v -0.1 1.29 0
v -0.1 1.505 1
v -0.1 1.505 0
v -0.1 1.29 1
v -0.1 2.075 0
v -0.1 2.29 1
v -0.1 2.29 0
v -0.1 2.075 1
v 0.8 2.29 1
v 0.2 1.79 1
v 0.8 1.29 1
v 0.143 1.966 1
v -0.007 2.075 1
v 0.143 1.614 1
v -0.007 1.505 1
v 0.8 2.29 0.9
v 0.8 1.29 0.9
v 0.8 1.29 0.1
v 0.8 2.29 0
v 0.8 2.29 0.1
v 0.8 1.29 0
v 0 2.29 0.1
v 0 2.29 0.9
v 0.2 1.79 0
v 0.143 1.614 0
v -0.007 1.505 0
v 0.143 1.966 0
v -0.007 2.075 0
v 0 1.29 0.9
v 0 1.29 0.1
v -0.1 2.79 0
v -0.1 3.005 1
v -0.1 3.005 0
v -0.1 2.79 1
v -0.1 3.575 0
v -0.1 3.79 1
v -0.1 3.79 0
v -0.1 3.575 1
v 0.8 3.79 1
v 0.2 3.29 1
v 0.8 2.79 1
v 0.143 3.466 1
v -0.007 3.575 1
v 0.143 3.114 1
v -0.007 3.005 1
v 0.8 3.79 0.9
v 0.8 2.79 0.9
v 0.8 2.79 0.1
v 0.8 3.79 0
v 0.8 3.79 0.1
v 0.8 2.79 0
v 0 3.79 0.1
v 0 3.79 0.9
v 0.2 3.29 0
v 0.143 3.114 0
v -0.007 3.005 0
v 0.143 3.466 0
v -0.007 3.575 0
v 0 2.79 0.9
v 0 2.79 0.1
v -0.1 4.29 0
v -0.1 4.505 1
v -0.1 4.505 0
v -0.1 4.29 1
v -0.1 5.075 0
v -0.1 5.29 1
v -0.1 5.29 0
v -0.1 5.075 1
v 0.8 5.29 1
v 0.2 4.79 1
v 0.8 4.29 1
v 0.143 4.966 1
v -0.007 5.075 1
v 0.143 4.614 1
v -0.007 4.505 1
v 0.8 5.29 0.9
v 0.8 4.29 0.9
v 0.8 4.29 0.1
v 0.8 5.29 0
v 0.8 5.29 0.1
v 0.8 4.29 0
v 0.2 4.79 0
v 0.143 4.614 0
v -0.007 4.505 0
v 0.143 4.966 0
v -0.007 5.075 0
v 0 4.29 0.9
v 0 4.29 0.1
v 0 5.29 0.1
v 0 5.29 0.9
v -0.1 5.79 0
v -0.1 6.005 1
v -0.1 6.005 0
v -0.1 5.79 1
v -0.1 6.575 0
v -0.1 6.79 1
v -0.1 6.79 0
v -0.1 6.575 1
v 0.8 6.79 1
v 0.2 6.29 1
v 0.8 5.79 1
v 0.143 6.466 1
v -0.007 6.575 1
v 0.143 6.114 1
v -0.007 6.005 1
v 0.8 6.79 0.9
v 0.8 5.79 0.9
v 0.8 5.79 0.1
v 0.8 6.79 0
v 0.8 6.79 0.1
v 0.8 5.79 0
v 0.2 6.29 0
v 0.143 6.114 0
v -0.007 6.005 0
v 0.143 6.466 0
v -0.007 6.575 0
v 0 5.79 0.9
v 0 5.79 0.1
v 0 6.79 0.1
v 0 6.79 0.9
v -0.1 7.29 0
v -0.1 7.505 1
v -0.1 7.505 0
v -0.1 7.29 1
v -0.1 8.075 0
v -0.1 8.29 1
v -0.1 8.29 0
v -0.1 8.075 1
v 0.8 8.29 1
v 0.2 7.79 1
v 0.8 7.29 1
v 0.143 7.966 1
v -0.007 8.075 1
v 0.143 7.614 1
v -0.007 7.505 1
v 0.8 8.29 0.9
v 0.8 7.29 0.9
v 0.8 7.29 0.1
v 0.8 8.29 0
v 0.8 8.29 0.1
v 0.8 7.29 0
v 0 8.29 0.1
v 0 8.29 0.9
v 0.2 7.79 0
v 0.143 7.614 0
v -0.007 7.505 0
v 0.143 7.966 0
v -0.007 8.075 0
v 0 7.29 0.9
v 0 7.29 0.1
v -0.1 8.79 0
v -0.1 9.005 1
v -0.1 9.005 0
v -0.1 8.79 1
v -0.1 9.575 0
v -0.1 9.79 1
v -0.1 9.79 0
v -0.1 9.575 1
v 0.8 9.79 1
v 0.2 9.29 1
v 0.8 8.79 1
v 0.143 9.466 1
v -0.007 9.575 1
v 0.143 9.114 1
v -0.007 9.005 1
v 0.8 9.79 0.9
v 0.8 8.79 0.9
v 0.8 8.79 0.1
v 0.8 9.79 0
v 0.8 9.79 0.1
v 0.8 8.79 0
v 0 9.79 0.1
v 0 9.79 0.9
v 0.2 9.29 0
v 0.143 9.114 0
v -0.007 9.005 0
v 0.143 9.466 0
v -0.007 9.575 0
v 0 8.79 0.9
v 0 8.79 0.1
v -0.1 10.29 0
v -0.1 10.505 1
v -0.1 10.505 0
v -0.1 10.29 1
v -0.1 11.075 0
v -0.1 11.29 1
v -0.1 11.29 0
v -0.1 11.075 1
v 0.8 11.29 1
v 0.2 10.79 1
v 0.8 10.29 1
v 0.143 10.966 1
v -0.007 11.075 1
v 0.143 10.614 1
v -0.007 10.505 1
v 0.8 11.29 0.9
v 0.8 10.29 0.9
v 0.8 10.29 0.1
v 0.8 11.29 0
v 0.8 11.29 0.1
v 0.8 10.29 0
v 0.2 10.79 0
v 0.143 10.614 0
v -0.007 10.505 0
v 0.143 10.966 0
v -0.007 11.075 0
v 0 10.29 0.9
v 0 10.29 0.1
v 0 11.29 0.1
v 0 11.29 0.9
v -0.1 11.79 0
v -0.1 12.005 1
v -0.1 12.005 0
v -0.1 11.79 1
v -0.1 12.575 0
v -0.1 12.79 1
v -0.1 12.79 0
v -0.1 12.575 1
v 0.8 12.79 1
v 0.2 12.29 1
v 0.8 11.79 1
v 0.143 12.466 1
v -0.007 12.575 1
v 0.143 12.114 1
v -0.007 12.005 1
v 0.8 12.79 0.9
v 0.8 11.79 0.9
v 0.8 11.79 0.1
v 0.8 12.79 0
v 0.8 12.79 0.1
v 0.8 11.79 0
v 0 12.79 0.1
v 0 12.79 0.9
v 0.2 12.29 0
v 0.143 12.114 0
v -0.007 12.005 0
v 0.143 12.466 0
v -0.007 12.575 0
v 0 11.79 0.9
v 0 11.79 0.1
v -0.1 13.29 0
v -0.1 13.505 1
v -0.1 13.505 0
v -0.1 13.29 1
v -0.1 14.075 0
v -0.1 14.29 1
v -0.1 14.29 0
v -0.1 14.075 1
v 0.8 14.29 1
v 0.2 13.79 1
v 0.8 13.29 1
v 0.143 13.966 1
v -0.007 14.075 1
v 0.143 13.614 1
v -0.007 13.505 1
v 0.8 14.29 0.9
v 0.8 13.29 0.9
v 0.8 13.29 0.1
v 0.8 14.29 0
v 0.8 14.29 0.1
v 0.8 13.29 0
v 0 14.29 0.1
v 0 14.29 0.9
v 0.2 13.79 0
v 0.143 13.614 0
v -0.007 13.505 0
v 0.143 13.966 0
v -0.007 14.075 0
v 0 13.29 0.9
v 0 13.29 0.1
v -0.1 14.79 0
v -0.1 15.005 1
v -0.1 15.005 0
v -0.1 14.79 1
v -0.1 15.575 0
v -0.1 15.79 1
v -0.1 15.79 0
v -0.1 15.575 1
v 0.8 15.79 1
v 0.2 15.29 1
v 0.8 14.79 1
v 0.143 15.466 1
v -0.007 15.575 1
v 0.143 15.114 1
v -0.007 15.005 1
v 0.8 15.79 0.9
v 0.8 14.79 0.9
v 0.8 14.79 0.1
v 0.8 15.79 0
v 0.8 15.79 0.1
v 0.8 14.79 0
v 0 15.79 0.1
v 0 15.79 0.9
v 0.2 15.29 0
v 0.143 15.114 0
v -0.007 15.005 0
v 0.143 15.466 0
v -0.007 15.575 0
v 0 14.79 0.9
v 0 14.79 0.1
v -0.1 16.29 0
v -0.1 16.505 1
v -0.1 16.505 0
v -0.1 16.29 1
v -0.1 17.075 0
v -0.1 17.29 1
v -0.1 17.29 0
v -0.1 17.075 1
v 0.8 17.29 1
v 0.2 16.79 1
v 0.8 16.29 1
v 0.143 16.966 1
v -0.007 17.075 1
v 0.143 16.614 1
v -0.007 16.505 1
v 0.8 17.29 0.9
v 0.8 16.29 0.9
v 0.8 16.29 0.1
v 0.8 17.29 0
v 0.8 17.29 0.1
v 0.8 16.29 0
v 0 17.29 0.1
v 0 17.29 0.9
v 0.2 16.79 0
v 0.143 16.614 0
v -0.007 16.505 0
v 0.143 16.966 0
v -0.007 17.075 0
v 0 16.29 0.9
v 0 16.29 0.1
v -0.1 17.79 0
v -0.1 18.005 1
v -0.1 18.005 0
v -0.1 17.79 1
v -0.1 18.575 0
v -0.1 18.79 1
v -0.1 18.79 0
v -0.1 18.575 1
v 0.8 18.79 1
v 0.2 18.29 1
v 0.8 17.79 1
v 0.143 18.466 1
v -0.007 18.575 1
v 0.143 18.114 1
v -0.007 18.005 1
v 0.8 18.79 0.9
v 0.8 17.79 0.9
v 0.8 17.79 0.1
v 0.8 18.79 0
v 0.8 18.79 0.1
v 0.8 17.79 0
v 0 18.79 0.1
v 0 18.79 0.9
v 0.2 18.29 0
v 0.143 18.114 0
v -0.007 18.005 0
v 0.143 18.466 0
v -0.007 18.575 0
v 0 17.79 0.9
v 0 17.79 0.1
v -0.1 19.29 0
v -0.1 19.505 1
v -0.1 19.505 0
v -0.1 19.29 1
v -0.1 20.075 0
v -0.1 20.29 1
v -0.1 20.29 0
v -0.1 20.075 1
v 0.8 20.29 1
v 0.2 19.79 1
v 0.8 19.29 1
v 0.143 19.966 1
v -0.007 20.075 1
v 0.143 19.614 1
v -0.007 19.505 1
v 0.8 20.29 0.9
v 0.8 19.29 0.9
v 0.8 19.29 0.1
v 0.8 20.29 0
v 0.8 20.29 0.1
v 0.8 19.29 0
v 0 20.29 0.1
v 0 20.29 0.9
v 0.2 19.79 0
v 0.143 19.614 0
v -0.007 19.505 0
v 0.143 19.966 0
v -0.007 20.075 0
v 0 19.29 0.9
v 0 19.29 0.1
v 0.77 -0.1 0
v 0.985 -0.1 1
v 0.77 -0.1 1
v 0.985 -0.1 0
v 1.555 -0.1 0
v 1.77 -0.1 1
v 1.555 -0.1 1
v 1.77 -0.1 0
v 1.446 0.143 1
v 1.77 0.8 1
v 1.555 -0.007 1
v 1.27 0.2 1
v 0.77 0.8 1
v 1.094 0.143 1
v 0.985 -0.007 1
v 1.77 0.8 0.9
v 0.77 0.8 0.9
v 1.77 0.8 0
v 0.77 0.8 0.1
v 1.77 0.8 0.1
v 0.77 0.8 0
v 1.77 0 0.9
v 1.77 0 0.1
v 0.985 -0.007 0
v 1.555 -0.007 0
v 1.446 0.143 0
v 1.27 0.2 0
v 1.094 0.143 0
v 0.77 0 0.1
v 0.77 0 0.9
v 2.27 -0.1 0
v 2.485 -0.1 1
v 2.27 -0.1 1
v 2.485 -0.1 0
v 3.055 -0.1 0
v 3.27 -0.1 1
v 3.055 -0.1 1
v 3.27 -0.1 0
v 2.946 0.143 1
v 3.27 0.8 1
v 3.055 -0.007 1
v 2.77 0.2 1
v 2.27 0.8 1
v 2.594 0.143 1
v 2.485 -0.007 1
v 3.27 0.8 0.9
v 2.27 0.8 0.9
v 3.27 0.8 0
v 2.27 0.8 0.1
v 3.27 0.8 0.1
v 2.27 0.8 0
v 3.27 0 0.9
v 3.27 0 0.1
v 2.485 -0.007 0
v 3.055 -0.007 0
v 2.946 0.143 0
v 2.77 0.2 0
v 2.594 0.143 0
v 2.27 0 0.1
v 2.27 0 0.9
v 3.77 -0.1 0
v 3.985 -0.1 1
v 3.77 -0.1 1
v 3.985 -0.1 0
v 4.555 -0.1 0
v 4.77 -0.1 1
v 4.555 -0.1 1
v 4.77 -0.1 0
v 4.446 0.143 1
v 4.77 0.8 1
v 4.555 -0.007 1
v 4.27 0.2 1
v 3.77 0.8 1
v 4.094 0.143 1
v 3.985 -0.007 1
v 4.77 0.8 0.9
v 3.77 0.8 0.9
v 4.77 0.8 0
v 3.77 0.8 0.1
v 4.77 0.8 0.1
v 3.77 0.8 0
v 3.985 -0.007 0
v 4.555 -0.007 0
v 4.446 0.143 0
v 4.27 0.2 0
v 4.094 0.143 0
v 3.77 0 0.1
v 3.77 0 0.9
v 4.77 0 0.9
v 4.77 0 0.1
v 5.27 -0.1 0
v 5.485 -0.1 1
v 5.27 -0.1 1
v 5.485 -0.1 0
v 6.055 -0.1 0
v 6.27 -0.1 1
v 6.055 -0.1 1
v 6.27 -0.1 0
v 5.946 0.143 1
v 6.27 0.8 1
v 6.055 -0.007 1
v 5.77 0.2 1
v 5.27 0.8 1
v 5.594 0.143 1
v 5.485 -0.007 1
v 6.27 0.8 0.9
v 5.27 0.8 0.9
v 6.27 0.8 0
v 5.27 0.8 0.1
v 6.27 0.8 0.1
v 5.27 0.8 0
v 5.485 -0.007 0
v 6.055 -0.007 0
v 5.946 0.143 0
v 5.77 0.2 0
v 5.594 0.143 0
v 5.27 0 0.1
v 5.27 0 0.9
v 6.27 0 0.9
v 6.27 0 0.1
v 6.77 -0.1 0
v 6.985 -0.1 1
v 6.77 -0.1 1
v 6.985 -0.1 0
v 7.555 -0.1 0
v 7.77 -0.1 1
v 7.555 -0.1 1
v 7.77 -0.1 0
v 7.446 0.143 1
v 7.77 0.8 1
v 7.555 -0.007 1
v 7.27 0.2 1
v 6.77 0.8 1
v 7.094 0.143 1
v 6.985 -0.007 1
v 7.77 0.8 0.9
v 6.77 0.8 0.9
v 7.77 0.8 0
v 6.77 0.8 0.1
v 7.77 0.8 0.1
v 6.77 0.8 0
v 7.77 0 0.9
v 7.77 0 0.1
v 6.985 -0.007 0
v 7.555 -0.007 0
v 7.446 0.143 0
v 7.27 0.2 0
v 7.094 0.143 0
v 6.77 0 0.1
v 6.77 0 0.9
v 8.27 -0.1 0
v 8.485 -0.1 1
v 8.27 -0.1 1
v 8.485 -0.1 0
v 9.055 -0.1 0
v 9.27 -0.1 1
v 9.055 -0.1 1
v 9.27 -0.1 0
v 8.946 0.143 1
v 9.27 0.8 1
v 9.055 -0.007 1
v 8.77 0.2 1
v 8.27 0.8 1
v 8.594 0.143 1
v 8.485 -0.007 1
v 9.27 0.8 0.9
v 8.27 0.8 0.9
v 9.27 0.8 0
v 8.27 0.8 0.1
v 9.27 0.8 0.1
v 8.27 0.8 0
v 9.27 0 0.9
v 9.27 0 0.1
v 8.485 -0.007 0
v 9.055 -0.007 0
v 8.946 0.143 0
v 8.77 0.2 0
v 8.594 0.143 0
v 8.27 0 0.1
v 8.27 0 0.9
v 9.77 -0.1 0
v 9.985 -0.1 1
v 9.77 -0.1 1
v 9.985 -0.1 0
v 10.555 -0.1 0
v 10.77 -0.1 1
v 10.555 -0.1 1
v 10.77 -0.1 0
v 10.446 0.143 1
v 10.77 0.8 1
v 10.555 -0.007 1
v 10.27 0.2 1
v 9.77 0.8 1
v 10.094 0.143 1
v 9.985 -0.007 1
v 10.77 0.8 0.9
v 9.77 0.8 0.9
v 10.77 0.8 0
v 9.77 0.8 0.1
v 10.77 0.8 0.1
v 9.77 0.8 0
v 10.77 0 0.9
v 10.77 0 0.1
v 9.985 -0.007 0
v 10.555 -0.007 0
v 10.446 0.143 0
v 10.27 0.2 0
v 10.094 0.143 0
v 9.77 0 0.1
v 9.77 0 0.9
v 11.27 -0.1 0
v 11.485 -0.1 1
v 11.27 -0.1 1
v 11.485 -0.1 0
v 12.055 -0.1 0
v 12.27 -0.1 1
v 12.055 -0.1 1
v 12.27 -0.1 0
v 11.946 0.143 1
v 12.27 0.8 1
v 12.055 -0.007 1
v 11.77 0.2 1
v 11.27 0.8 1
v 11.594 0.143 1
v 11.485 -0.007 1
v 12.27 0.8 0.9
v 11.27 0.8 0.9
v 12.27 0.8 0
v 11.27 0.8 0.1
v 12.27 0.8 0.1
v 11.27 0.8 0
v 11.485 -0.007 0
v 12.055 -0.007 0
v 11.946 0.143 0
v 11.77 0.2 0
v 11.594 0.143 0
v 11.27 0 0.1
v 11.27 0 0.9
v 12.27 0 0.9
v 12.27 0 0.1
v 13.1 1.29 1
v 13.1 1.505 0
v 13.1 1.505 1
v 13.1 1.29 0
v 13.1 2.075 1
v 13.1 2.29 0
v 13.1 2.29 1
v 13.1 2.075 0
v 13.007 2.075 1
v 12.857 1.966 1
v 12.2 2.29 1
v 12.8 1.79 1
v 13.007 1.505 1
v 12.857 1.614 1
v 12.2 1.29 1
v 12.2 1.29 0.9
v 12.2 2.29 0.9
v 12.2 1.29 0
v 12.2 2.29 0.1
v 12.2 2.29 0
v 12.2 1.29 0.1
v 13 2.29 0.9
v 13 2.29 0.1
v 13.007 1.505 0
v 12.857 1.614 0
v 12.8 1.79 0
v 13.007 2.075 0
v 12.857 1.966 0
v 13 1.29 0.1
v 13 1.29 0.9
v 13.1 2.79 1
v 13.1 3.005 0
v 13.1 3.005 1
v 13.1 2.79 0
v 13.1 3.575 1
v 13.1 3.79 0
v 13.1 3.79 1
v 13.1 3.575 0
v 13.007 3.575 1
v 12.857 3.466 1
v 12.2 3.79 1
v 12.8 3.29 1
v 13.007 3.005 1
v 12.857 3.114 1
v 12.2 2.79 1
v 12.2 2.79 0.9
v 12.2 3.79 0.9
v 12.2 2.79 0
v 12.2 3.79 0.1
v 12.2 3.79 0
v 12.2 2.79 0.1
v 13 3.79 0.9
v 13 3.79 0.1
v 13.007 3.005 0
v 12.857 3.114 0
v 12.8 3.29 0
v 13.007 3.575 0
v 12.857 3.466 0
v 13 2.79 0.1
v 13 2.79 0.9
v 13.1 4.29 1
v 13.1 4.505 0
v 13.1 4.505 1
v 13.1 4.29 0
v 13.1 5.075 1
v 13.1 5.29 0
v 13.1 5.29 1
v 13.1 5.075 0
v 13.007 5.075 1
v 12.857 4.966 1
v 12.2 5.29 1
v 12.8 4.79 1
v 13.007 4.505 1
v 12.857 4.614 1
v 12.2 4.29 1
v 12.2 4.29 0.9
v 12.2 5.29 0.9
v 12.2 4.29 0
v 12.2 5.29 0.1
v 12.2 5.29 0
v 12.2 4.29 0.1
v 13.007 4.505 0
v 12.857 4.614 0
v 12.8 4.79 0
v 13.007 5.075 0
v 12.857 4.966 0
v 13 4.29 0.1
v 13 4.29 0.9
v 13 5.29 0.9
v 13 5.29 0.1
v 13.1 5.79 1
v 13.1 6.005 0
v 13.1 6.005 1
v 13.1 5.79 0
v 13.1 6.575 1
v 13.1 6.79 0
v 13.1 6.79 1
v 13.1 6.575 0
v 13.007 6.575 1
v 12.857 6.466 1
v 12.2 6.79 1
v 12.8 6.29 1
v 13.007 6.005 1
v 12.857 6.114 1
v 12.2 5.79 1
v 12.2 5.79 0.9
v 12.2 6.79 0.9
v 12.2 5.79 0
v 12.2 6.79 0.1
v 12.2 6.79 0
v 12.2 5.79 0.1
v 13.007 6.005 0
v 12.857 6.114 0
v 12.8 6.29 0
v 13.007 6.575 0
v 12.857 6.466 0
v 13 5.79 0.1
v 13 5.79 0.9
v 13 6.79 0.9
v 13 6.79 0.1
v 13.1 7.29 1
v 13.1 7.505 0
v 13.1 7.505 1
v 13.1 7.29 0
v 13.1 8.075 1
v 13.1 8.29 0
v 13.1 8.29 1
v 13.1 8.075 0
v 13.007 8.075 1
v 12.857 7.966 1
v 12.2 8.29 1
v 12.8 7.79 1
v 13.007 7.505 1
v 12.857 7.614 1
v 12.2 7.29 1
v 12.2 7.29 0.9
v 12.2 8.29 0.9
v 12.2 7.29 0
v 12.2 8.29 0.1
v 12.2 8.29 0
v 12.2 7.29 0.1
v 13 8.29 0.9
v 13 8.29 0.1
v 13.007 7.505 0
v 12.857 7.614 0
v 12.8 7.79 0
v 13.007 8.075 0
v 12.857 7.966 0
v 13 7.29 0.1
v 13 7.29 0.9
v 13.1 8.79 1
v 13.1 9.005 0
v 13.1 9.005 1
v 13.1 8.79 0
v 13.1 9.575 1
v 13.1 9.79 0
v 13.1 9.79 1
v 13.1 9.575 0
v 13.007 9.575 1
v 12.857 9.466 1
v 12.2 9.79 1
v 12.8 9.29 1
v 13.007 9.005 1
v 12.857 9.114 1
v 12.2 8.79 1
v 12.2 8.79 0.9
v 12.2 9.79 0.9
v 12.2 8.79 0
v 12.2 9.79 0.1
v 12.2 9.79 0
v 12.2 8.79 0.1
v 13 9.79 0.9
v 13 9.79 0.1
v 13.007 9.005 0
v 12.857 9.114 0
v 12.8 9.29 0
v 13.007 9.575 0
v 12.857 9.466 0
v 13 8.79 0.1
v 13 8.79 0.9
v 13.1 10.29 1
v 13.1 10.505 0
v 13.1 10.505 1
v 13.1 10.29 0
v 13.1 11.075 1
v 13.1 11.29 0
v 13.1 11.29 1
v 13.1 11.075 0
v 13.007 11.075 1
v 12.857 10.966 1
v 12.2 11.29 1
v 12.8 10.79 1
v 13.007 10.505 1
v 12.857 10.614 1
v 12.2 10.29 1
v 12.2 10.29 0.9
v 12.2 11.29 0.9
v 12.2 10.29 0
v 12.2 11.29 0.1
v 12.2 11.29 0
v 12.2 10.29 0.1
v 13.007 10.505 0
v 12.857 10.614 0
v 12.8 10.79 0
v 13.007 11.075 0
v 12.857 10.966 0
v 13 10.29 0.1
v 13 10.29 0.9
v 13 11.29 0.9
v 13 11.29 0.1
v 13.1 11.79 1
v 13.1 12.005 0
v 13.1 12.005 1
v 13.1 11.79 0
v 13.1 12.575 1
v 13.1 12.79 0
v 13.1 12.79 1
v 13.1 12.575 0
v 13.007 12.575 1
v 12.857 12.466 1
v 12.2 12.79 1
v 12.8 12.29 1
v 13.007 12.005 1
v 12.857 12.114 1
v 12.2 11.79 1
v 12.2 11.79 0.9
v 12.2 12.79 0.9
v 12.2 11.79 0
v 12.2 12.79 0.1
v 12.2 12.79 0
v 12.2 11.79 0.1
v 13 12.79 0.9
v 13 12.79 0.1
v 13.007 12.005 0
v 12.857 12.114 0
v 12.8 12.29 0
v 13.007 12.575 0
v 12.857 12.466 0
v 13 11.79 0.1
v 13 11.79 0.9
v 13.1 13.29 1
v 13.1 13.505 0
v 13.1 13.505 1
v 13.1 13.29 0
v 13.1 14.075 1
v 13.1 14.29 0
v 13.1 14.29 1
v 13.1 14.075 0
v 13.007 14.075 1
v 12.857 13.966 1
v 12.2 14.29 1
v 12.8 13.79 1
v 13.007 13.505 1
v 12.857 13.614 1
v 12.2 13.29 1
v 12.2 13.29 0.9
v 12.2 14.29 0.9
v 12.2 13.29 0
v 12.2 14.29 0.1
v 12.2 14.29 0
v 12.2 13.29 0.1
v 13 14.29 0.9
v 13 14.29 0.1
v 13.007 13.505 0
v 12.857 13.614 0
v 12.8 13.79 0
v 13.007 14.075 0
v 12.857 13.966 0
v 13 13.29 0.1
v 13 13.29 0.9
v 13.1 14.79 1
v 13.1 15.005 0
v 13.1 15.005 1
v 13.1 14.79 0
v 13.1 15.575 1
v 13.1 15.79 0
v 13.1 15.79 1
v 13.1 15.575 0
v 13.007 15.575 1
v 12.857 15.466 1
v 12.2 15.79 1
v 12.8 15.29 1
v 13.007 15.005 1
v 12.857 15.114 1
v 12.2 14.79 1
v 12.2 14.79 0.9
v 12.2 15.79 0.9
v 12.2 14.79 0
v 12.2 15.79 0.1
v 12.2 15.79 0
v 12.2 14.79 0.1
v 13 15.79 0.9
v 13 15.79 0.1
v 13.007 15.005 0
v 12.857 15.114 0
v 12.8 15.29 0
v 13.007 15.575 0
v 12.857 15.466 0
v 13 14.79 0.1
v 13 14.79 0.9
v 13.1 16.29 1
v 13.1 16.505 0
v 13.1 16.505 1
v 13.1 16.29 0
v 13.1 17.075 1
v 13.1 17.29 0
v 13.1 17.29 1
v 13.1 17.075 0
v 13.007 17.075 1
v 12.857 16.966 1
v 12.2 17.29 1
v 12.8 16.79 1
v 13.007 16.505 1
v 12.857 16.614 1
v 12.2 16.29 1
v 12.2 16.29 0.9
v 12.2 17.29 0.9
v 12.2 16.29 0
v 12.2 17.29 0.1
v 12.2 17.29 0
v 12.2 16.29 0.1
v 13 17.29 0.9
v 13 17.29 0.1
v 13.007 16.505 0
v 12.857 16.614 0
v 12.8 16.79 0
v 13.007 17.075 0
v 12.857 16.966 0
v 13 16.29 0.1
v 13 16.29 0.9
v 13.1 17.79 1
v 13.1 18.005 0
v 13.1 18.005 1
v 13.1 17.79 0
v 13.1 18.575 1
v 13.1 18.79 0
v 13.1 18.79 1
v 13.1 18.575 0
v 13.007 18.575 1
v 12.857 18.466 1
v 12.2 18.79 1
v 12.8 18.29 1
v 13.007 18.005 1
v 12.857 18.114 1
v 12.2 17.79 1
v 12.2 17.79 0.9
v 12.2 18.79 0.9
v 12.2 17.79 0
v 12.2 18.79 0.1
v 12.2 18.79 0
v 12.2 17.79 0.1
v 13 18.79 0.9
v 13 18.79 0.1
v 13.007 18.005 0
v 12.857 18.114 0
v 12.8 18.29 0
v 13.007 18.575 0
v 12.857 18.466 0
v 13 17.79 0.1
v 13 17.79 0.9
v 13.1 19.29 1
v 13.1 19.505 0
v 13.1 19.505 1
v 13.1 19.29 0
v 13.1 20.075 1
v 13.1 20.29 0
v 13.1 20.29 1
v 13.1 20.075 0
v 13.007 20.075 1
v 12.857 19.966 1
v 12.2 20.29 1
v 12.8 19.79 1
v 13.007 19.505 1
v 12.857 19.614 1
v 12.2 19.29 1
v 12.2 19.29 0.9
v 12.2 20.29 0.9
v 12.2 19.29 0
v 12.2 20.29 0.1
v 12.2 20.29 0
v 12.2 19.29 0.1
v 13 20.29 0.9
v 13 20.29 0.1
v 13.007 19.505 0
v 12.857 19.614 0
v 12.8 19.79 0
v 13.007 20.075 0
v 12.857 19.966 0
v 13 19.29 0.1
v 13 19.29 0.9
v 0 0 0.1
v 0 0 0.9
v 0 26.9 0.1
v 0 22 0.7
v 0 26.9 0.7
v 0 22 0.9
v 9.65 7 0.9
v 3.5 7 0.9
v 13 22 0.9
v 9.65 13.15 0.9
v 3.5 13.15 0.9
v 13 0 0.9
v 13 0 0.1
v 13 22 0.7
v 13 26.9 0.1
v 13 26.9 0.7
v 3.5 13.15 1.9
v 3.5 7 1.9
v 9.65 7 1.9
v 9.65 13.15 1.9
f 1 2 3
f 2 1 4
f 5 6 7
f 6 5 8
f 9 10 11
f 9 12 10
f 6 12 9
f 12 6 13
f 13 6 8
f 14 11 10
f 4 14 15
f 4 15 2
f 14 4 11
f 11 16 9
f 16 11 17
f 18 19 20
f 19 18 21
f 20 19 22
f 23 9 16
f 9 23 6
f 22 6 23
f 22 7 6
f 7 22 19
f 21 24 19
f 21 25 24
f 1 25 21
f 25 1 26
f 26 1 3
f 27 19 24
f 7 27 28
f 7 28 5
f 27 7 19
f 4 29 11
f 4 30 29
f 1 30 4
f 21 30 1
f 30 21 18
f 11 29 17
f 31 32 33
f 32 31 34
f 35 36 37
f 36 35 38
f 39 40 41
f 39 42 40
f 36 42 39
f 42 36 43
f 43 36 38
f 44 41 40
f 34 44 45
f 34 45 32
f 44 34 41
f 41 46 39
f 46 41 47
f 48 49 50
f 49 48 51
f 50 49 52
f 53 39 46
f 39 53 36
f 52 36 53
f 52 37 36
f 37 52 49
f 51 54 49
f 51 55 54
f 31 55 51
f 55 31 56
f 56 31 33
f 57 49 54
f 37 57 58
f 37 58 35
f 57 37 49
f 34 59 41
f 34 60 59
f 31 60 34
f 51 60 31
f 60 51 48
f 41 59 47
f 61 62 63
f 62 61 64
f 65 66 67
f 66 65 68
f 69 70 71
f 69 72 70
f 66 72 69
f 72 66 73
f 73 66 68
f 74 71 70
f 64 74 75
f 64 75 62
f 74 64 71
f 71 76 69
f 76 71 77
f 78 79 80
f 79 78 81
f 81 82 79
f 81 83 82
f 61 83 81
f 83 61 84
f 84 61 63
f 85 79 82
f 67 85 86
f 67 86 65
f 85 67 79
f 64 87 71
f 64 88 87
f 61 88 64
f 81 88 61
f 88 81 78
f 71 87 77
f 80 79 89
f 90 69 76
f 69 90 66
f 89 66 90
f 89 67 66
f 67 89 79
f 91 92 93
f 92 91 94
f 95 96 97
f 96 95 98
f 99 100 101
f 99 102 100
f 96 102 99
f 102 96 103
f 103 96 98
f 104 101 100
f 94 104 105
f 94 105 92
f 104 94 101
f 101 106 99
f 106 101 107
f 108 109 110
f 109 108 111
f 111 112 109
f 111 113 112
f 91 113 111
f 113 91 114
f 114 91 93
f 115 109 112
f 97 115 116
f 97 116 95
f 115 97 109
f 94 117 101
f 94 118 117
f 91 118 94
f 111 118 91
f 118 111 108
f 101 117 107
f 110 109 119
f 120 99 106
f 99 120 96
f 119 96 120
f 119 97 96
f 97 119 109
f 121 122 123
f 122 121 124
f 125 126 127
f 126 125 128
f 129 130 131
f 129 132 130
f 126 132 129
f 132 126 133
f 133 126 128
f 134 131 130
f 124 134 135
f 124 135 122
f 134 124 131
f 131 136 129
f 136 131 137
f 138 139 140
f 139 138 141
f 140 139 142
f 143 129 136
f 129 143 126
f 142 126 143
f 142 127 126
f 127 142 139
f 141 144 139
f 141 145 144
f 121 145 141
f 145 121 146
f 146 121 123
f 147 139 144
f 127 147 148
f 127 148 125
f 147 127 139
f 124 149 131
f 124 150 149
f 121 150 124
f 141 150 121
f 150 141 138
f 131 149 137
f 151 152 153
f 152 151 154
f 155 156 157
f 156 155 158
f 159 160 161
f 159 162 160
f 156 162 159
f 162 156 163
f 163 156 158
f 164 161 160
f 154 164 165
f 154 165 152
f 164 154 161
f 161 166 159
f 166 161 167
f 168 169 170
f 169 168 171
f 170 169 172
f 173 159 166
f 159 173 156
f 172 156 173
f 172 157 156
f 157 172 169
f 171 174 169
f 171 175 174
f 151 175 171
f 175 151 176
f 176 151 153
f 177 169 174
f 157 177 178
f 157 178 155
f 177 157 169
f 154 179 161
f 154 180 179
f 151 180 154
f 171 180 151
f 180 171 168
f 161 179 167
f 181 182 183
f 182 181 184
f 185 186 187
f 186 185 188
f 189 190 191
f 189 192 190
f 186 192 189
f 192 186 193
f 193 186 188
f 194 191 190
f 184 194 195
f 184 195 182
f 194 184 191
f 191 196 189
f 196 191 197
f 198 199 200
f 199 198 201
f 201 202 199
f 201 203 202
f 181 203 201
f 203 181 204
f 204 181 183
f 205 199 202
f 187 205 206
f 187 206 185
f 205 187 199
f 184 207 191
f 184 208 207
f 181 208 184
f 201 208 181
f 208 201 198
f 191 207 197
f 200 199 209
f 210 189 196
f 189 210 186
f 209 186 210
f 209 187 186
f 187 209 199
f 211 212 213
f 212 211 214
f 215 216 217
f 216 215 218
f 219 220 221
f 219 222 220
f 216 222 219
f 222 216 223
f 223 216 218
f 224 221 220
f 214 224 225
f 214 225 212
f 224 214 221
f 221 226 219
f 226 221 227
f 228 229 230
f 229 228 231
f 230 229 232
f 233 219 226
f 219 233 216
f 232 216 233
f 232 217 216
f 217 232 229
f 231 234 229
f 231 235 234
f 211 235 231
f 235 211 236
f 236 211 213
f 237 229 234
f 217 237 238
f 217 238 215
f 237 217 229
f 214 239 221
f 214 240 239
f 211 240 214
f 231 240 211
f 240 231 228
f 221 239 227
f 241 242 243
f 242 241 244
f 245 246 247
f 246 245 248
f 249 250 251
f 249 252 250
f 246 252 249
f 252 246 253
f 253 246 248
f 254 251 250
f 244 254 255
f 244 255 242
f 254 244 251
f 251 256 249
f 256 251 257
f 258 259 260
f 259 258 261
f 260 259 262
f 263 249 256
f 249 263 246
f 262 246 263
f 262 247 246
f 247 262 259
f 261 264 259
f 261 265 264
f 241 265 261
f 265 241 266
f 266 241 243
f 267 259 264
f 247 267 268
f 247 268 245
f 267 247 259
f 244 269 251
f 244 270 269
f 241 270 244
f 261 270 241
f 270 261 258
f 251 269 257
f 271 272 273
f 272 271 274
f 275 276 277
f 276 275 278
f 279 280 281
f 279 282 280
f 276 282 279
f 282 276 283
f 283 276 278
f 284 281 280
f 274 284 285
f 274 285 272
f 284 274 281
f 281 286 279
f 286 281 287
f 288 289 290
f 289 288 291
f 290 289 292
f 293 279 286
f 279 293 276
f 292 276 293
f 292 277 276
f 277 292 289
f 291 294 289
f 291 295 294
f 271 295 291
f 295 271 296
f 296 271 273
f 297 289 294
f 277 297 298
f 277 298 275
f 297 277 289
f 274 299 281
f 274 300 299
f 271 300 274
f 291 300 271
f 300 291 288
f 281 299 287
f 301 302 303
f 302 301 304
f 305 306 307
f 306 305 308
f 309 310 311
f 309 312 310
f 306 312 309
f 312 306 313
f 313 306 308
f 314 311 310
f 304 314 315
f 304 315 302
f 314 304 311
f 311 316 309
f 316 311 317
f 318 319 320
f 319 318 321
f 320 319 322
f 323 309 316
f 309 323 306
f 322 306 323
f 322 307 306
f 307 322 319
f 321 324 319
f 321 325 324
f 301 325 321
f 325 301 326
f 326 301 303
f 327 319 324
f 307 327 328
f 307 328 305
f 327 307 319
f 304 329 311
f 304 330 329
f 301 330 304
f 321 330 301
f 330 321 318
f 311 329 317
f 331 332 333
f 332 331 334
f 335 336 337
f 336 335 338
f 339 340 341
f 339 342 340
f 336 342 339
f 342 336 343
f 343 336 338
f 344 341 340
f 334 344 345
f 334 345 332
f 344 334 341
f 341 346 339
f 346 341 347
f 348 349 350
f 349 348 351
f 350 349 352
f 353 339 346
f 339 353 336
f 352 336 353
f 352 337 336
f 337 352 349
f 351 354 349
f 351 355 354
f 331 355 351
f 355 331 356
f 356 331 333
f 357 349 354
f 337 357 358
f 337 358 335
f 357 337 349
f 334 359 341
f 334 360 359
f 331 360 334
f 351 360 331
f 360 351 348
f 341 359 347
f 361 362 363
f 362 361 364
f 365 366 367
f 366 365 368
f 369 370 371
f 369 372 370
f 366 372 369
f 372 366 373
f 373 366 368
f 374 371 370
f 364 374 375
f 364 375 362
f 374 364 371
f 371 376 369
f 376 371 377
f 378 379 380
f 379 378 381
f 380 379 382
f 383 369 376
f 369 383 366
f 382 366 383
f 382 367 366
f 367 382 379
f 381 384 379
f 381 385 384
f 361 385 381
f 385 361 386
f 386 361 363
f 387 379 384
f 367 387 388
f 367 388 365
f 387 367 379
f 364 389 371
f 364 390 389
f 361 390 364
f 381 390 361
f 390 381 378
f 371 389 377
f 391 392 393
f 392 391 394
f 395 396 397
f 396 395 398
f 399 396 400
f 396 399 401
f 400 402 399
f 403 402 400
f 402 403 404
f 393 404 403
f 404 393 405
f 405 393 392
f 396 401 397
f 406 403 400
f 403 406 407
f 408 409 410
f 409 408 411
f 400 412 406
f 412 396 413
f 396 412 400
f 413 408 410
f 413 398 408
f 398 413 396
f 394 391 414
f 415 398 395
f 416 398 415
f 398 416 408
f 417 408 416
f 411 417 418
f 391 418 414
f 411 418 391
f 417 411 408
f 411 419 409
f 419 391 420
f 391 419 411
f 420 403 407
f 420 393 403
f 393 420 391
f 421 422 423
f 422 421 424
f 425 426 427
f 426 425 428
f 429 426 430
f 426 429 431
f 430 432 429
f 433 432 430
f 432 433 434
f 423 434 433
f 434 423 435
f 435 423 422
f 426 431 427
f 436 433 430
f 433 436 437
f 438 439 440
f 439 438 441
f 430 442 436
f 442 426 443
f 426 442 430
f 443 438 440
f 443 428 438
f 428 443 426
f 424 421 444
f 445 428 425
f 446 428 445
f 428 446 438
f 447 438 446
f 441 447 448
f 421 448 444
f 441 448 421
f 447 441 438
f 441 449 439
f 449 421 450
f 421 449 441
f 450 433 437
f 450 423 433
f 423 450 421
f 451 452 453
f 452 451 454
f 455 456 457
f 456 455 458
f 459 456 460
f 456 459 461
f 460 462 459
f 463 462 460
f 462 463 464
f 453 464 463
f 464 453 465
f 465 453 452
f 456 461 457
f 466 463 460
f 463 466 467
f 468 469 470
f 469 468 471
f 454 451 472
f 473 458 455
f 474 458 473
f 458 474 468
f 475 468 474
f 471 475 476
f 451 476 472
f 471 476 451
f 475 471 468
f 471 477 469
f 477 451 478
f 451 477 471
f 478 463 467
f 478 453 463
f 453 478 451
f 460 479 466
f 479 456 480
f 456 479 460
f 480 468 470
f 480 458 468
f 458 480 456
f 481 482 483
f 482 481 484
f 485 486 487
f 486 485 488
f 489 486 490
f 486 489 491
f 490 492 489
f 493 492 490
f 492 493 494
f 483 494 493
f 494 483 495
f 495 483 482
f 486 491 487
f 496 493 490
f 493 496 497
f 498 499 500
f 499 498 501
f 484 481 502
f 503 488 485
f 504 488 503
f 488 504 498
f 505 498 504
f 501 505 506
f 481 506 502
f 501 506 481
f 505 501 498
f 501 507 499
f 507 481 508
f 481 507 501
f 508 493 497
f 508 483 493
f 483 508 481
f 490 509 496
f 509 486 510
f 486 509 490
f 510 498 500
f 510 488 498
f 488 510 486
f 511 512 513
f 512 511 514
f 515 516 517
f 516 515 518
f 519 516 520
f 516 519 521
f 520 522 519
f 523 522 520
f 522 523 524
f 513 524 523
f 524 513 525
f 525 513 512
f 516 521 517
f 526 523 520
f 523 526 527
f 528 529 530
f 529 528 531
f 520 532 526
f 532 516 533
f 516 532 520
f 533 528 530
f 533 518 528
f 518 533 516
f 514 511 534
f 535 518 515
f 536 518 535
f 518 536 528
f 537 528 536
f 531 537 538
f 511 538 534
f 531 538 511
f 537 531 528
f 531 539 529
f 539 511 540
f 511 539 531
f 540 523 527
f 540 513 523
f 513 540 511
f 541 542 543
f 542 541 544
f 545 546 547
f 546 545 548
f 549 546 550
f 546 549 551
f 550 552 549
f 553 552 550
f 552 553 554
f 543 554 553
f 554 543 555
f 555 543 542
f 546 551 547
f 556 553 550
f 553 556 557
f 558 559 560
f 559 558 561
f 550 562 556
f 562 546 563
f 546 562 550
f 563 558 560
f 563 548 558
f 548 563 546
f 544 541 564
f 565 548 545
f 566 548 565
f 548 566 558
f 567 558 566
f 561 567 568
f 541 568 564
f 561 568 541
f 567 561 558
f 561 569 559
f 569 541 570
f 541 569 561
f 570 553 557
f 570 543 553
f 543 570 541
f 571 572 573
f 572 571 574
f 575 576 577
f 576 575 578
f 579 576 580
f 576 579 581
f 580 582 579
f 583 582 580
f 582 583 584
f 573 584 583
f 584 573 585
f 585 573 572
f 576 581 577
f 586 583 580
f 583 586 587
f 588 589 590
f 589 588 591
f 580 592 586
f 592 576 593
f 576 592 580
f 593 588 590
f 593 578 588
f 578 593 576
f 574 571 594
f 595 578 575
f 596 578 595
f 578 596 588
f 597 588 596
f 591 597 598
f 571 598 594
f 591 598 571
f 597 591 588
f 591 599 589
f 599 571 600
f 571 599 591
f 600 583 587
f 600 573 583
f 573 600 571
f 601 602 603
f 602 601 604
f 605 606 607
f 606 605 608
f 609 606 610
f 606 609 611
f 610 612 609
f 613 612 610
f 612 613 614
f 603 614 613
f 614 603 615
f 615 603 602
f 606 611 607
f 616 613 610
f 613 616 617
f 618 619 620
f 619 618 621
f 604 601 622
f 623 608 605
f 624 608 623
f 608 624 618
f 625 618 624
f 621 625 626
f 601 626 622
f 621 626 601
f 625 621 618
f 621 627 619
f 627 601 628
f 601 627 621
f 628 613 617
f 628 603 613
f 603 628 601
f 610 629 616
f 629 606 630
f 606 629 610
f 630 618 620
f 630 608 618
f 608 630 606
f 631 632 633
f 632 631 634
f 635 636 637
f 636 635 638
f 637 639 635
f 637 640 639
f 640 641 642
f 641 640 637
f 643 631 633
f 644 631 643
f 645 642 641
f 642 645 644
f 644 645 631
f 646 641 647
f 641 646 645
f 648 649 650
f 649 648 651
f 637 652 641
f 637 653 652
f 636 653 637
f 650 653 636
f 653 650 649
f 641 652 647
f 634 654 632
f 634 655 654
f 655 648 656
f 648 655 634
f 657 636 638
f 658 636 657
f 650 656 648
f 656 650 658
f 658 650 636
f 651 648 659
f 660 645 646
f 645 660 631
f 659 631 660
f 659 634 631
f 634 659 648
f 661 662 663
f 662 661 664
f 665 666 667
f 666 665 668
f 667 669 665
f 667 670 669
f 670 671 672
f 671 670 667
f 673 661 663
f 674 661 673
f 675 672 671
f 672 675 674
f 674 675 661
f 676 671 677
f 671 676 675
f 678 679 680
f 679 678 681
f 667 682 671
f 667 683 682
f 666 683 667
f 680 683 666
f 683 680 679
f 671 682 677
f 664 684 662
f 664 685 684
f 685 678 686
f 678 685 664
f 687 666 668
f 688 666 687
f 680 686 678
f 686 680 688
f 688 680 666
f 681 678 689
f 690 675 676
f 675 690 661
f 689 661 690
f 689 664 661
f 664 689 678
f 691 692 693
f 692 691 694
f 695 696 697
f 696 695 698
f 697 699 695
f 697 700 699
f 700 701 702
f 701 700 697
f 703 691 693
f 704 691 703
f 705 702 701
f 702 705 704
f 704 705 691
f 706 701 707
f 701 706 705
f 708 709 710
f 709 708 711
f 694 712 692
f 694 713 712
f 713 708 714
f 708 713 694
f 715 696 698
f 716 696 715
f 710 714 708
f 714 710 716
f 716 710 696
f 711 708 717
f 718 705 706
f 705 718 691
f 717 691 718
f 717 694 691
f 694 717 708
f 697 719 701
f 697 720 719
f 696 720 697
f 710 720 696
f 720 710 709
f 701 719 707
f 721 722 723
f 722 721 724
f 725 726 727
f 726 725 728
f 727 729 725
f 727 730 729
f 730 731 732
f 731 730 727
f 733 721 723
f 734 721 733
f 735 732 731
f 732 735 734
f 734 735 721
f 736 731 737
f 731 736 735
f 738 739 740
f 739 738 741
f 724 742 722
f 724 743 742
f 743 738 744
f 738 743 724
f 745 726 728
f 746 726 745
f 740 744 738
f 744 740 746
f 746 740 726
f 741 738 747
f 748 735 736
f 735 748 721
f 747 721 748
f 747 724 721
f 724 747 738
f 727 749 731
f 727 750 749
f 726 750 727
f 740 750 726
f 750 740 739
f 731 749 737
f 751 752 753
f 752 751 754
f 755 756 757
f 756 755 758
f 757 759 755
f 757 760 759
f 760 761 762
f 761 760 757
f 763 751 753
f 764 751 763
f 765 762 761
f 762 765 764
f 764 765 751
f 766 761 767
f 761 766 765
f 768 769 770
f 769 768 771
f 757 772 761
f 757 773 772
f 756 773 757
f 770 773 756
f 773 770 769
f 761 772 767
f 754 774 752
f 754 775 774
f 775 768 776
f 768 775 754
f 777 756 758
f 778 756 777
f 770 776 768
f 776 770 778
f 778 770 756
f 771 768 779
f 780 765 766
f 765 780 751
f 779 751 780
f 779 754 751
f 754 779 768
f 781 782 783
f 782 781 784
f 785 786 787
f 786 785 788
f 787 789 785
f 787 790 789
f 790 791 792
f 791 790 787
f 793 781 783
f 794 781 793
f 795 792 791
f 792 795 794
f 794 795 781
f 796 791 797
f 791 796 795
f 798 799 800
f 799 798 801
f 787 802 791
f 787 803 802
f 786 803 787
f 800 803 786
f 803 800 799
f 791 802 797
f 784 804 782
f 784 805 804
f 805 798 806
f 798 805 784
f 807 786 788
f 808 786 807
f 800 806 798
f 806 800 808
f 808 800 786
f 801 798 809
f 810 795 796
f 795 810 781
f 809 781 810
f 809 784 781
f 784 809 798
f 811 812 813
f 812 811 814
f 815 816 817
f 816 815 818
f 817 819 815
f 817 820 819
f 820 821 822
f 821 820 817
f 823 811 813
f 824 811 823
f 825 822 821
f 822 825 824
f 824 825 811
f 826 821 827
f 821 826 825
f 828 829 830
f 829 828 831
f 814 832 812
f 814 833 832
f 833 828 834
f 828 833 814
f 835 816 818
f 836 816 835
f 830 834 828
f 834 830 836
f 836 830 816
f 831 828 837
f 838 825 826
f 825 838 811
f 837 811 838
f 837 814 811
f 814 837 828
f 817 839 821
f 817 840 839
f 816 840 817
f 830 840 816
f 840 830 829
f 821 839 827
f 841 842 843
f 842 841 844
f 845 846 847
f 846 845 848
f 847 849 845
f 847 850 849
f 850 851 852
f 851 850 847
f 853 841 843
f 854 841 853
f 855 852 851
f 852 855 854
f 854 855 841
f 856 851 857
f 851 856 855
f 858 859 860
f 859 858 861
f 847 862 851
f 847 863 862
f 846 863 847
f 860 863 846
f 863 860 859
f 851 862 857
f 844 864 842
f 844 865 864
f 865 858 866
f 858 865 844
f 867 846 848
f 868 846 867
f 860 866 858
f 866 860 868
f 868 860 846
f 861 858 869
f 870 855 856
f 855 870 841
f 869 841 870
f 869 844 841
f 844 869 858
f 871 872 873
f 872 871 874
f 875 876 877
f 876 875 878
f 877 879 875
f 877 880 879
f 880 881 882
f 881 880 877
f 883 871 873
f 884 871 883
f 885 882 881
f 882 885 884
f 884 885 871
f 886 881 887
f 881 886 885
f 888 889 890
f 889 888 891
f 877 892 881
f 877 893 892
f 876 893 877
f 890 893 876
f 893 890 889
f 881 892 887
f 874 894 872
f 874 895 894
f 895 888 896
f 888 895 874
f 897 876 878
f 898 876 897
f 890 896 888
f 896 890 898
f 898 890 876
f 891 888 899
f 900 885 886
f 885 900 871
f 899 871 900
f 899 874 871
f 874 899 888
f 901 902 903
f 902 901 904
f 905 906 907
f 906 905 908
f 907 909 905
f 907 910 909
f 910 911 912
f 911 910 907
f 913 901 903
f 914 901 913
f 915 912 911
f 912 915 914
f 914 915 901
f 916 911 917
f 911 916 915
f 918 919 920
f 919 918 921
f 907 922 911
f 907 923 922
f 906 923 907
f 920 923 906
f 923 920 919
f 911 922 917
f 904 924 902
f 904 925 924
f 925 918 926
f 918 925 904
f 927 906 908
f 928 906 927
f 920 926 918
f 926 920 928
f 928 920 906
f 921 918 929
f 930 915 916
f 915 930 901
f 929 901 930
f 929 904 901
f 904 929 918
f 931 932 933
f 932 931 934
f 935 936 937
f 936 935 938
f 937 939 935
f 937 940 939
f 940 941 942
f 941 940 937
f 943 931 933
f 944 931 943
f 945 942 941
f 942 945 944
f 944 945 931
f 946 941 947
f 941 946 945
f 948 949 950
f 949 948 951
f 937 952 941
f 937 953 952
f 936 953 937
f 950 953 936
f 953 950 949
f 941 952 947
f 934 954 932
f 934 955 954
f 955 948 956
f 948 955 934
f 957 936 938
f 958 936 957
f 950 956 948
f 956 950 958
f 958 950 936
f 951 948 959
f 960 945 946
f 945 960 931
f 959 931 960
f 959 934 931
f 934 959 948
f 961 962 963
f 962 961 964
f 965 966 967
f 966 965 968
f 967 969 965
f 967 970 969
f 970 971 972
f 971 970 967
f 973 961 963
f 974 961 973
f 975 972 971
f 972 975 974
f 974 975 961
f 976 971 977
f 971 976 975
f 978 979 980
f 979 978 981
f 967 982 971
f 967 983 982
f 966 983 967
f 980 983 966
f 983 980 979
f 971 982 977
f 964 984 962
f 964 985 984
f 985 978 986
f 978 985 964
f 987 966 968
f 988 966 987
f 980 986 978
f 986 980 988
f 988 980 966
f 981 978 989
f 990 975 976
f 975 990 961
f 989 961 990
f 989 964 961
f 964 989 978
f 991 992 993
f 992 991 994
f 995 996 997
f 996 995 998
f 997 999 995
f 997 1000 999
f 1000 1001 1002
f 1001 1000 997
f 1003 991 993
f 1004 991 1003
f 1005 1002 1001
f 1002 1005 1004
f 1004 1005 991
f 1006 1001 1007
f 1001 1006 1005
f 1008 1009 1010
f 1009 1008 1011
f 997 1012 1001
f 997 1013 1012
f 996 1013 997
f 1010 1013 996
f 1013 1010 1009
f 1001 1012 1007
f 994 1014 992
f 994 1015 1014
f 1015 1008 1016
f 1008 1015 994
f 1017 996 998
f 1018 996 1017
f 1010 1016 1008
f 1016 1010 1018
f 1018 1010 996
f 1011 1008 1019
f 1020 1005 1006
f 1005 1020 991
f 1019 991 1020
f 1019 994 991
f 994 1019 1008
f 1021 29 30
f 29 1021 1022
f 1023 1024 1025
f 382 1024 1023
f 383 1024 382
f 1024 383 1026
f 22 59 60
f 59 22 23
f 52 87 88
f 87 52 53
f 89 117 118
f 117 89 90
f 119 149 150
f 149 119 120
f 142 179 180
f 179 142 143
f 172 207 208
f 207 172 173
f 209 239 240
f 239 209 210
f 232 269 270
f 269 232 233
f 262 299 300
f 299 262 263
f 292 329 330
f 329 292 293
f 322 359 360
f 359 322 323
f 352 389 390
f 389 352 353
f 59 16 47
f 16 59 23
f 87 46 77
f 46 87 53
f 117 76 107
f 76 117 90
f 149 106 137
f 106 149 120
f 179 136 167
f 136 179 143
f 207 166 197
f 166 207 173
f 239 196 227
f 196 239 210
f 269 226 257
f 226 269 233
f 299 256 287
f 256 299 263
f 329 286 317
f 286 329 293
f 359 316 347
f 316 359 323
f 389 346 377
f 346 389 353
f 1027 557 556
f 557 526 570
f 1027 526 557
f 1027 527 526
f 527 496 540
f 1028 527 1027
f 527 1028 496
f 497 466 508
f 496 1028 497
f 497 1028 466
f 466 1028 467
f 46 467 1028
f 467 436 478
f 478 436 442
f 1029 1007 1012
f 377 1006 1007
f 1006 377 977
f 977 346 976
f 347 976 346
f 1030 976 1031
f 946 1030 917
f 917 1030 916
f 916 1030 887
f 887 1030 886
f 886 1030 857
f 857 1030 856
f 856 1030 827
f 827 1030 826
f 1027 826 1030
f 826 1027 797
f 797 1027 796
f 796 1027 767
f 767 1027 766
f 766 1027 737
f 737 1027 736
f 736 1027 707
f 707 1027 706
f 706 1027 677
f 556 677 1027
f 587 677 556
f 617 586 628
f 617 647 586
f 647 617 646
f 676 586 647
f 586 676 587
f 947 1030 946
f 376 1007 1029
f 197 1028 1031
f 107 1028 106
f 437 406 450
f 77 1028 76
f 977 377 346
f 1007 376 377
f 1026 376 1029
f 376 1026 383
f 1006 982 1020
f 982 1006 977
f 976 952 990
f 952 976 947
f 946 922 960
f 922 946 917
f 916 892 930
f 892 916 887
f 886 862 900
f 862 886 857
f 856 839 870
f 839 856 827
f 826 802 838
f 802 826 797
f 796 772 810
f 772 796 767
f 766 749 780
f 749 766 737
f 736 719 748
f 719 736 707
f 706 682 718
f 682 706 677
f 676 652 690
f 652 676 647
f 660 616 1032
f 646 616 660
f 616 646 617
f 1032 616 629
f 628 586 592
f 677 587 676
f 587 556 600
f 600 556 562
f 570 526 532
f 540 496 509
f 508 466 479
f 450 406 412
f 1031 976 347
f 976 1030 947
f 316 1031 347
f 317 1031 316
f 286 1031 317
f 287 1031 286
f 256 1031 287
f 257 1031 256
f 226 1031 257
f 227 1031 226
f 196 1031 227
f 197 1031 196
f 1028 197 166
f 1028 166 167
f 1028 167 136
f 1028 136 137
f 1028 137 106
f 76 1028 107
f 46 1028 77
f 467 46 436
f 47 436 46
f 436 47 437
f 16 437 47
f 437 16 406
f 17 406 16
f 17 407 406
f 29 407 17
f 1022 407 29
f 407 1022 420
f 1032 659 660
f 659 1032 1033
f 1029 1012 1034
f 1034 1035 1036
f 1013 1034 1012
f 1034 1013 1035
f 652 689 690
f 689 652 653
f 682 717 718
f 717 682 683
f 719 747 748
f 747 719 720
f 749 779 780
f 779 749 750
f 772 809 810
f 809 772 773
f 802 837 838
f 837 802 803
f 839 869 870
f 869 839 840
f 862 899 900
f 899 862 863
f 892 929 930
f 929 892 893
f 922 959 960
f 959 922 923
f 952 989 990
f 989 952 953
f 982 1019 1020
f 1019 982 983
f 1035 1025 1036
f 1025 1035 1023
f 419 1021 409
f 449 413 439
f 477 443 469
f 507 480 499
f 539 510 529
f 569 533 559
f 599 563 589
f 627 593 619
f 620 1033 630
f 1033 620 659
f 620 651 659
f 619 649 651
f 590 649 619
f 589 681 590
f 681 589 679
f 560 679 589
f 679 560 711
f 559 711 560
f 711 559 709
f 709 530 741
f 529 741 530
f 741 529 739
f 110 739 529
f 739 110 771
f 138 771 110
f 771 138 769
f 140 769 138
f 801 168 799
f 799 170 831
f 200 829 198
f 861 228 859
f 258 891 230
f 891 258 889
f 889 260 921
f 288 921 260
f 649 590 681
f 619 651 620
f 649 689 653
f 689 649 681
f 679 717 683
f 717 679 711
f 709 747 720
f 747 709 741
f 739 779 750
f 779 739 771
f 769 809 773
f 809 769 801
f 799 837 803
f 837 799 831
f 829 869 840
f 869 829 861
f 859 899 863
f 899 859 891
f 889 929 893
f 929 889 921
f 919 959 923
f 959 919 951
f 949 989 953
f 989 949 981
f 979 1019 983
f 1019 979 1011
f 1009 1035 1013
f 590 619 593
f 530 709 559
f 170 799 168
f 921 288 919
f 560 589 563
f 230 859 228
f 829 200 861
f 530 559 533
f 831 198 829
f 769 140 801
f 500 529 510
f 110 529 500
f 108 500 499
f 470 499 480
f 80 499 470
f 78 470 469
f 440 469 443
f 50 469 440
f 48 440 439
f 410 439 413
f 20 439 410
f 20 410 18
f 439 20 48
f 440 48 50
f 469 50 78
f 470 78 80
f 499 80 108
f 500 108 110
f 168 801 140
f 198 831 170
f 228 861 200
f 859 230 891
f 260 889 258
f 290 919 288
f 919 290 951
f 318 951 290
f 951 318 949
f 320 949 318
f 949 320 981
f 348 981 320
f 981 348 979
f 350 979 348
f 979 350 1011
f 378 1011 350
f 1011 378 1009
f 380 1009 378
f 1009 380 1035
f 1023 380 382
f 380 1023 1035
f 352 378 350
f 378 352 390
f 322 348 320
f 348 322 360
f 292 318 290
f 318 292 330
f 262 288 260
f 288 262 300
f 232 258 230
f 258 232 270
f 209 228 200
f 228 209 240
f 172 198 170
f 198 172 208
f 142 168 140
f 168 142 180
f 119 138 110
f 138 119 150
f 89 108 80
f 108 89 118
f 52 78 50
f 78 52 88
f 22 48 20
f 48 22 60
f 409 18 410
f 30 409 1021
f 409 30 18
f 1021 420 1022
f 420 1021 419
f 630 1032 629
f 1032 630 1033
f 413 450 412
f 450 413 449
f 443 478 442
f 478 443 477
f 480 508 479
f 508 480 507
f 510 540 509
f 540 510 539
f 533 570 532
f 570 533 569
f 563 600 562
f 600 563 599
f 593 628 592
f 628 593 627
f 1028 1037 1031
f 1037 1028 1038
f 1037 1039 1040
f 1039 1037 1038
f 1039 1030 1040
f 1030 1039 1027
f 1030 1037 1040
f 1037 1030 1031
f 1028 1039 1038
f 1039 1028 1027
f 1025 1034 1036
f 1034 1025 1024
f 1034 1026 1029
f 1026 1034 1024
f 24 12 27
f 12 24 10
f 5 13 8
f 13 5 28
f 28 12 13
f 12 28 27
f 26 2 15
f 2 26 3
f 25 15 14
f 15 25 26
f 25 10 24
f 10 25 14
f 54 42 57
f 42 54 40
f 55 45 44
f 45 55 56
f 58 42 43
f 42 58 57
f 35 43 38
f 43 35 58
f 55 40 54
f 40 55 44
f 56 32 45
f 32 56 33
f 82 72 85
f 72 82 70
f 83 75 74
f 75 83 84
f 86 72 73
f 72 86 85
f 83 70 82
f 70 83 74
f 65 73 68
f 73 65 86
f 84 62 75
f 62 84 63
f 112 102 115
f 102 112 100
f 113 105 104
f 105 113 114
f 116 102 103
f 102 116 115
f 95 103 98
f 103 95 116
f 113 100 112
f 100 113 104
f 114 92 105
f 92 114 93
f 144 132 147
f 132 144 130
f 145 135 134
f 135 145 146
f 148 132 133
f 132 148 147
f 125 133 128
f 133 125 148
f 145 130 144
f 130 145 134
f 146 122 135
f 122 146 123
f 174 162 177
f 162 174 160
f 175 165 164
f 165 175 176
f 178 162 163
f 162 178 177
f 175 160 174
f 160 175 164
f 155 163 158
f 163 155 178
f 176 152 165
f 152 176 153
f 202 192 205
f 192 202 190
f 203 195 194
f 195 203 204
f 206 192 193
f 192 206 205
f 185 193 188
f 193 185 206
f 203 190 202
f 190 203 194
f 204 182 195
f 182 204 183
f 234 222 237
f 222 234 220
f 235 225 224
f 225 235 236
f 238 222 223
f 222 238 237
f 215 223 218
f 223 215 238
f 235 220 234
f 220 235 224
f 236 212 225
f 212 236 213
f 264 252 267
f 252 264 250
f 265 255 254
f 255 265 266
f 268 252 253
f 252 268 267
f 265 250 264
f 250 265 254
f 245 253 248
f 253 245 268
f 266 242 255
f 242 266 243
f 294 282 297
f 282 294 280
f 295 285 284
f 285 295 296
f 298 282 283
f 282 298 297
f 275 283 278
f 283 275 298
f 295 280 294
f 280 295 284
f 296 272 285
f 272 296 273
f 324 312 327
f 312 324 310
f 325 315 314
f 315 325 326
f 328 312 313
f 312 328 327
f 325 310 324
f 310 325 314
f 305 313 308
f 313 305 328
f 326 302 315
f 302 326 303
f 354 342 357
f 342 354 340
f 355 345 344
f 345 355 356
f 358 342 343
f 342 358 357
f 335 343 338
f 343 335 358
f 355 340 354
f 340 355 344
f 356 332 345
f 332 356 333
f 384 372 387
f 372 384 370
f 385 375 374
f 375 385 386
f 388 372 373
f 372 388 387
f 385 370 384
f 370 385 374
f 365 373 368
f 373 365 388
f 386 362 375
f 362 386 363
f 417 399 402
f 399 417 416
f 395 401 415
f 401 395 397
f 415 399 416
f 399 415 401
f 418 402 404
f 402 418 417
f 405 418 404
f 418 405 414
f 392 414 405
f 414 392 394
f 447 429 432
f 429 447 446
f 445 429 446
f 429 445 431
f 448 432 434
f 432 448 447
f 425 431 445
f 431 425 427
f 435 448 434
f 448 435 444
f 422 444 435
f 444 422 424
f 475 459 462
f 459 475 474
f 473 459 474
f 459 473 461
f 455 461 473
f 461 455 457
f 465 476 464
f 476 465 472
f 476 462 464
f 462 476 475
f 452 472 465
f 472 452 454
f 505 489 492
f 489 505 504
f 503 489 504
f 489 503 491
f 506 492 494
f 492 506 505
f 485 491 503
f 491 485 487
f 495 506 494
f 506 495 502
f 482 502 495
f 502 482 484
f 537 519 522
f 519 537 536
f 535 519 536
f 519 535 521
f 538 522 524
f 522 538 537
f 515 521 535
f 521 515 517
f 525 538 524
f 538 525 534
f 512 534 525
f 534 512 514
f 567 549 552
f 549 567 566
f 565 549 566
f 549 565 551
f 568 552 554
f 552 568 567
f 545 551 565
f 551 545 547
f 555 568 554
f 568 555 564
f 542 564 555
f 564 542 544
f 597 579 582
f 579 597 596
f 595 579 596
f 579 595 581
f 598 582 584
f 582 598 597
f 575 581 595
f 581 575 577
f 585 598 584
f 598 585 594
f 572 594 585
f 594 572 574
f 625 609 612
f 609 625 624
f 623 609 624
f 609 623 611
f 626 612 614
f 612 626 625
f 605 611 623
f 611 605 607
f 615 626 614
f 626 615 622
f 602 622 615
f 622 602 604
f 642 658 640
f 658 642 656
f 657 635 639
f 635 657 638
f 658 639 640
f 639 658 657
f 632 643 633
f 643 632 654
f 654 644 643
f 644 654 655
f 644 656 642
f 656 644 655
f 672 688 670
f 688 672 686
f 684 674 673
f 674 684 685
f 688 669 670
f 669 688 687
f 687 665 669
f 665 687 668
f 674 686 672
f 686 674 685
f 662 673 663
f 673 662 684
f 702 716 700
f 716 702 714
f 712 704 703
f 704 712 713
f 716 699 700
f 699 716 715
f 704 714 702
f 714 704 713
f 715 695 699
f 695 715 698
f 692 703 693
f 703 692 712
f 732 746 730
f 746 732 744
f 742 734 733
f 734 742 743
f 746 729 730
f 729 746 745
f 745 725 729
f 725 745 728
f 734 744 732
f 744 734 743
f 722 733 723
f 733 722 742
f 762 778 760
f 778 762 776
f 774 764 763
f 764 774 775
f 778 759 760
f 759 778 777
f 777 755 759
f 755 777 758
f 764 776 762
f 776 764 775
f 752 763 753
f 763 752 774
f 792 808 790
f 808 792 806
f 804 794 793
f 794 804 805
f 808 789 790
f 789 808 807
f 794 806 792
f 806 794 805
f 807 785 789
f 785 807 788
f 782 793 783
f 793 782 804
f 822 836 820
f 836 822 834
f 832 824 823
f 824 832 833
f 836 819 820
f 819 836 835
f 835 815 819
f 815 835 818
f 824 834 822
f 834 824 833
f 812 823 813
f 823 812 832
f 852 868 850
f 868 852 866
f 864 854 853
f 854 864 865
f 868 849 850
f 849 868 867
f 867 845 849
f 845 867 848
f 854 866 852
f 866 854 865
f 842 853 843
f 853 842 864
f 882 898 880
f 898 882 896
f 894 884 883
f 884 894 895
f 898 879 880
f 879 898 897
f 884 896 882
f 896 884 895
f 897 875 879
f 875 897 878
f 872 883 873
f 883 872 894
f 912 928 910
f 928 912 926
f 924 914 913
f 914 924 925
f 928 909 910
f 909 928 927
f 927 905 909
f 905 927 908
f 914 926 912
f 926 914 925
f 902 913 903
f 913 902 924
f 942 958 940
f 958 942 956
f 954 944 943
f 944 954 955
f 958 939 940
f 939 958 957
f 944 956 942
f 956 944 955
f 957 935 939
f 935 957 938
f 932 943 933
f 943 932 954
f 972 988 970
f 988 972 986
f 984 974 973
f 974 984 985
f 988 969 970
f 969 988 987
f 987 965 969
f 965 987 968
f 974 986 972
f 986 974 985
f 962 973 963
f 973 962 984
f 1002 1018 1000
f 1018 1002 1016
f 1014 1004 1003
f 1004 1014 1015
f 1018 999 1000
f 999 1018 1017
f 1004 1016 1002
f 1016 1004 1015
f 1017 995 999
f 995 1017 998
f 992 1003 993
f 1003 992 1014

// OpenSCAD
off = 0.1;

module pin()
{
    translate([0,-0.5,0])
        cube([0.9,1,0.8+2*off], center=false);
}

module hole()
{
    translate([0,0,-off])
        cylinder(r=0.3,h=0.8+4*off,$fn=10);
}

module pins_array(_cnt, _distance)
{
	if (_cnt>0)
	{
		for (_i = [0:_cnt-1])
		{
			translate([0,_distance*_i,0])
				pin();
		}
	}
}

module holes_array(_cnt, _distance)
{
	if (_cnt>0)
	{
		for (_i = [0:_cnt-1])
		{
			translate([0,_distance*_i,0])
				hole();
		}
	}
}

difference()
{
	union()
	{
		// Left pins
		translate([-off,1.79,0])
			pins_array(13,1.5);

		// Bottom pins
		translate([1.27,-off,0])
			mirror([1,0,0])
				rotate([0,0,90])
					pins_array(8,1.5);

		// Right pins
		translate([13+off,1.79,0])
			mirror([1,0,0])
				pins_array(13,1.5);

		difference()
		{
			union()
			{
				translate([0,0,off])
					cube([13,26.9,0.8], center=false);

				translate([3.5,7,off])
					cube([6.15,6.15,1.8], center=false);
			}
			translate([-off,22,0.8-off])
				cube([14,7,0.8], center=false);
		}
	}

	// Holes
	union()
	{
		// Left holes
		translate([-off,1.79,0])
			holes_array(13,1.5);

		// Bottom holes
		translate([1.27,-off,0])
			mirror([1,0,0])
				rotate([0,0,90])
					holes_array(8,1.5);

		// Right holes
		translate([13+off,1.79,0])
			mirror([1,0,0])
				holes_array(13,1.5);
	}
}
